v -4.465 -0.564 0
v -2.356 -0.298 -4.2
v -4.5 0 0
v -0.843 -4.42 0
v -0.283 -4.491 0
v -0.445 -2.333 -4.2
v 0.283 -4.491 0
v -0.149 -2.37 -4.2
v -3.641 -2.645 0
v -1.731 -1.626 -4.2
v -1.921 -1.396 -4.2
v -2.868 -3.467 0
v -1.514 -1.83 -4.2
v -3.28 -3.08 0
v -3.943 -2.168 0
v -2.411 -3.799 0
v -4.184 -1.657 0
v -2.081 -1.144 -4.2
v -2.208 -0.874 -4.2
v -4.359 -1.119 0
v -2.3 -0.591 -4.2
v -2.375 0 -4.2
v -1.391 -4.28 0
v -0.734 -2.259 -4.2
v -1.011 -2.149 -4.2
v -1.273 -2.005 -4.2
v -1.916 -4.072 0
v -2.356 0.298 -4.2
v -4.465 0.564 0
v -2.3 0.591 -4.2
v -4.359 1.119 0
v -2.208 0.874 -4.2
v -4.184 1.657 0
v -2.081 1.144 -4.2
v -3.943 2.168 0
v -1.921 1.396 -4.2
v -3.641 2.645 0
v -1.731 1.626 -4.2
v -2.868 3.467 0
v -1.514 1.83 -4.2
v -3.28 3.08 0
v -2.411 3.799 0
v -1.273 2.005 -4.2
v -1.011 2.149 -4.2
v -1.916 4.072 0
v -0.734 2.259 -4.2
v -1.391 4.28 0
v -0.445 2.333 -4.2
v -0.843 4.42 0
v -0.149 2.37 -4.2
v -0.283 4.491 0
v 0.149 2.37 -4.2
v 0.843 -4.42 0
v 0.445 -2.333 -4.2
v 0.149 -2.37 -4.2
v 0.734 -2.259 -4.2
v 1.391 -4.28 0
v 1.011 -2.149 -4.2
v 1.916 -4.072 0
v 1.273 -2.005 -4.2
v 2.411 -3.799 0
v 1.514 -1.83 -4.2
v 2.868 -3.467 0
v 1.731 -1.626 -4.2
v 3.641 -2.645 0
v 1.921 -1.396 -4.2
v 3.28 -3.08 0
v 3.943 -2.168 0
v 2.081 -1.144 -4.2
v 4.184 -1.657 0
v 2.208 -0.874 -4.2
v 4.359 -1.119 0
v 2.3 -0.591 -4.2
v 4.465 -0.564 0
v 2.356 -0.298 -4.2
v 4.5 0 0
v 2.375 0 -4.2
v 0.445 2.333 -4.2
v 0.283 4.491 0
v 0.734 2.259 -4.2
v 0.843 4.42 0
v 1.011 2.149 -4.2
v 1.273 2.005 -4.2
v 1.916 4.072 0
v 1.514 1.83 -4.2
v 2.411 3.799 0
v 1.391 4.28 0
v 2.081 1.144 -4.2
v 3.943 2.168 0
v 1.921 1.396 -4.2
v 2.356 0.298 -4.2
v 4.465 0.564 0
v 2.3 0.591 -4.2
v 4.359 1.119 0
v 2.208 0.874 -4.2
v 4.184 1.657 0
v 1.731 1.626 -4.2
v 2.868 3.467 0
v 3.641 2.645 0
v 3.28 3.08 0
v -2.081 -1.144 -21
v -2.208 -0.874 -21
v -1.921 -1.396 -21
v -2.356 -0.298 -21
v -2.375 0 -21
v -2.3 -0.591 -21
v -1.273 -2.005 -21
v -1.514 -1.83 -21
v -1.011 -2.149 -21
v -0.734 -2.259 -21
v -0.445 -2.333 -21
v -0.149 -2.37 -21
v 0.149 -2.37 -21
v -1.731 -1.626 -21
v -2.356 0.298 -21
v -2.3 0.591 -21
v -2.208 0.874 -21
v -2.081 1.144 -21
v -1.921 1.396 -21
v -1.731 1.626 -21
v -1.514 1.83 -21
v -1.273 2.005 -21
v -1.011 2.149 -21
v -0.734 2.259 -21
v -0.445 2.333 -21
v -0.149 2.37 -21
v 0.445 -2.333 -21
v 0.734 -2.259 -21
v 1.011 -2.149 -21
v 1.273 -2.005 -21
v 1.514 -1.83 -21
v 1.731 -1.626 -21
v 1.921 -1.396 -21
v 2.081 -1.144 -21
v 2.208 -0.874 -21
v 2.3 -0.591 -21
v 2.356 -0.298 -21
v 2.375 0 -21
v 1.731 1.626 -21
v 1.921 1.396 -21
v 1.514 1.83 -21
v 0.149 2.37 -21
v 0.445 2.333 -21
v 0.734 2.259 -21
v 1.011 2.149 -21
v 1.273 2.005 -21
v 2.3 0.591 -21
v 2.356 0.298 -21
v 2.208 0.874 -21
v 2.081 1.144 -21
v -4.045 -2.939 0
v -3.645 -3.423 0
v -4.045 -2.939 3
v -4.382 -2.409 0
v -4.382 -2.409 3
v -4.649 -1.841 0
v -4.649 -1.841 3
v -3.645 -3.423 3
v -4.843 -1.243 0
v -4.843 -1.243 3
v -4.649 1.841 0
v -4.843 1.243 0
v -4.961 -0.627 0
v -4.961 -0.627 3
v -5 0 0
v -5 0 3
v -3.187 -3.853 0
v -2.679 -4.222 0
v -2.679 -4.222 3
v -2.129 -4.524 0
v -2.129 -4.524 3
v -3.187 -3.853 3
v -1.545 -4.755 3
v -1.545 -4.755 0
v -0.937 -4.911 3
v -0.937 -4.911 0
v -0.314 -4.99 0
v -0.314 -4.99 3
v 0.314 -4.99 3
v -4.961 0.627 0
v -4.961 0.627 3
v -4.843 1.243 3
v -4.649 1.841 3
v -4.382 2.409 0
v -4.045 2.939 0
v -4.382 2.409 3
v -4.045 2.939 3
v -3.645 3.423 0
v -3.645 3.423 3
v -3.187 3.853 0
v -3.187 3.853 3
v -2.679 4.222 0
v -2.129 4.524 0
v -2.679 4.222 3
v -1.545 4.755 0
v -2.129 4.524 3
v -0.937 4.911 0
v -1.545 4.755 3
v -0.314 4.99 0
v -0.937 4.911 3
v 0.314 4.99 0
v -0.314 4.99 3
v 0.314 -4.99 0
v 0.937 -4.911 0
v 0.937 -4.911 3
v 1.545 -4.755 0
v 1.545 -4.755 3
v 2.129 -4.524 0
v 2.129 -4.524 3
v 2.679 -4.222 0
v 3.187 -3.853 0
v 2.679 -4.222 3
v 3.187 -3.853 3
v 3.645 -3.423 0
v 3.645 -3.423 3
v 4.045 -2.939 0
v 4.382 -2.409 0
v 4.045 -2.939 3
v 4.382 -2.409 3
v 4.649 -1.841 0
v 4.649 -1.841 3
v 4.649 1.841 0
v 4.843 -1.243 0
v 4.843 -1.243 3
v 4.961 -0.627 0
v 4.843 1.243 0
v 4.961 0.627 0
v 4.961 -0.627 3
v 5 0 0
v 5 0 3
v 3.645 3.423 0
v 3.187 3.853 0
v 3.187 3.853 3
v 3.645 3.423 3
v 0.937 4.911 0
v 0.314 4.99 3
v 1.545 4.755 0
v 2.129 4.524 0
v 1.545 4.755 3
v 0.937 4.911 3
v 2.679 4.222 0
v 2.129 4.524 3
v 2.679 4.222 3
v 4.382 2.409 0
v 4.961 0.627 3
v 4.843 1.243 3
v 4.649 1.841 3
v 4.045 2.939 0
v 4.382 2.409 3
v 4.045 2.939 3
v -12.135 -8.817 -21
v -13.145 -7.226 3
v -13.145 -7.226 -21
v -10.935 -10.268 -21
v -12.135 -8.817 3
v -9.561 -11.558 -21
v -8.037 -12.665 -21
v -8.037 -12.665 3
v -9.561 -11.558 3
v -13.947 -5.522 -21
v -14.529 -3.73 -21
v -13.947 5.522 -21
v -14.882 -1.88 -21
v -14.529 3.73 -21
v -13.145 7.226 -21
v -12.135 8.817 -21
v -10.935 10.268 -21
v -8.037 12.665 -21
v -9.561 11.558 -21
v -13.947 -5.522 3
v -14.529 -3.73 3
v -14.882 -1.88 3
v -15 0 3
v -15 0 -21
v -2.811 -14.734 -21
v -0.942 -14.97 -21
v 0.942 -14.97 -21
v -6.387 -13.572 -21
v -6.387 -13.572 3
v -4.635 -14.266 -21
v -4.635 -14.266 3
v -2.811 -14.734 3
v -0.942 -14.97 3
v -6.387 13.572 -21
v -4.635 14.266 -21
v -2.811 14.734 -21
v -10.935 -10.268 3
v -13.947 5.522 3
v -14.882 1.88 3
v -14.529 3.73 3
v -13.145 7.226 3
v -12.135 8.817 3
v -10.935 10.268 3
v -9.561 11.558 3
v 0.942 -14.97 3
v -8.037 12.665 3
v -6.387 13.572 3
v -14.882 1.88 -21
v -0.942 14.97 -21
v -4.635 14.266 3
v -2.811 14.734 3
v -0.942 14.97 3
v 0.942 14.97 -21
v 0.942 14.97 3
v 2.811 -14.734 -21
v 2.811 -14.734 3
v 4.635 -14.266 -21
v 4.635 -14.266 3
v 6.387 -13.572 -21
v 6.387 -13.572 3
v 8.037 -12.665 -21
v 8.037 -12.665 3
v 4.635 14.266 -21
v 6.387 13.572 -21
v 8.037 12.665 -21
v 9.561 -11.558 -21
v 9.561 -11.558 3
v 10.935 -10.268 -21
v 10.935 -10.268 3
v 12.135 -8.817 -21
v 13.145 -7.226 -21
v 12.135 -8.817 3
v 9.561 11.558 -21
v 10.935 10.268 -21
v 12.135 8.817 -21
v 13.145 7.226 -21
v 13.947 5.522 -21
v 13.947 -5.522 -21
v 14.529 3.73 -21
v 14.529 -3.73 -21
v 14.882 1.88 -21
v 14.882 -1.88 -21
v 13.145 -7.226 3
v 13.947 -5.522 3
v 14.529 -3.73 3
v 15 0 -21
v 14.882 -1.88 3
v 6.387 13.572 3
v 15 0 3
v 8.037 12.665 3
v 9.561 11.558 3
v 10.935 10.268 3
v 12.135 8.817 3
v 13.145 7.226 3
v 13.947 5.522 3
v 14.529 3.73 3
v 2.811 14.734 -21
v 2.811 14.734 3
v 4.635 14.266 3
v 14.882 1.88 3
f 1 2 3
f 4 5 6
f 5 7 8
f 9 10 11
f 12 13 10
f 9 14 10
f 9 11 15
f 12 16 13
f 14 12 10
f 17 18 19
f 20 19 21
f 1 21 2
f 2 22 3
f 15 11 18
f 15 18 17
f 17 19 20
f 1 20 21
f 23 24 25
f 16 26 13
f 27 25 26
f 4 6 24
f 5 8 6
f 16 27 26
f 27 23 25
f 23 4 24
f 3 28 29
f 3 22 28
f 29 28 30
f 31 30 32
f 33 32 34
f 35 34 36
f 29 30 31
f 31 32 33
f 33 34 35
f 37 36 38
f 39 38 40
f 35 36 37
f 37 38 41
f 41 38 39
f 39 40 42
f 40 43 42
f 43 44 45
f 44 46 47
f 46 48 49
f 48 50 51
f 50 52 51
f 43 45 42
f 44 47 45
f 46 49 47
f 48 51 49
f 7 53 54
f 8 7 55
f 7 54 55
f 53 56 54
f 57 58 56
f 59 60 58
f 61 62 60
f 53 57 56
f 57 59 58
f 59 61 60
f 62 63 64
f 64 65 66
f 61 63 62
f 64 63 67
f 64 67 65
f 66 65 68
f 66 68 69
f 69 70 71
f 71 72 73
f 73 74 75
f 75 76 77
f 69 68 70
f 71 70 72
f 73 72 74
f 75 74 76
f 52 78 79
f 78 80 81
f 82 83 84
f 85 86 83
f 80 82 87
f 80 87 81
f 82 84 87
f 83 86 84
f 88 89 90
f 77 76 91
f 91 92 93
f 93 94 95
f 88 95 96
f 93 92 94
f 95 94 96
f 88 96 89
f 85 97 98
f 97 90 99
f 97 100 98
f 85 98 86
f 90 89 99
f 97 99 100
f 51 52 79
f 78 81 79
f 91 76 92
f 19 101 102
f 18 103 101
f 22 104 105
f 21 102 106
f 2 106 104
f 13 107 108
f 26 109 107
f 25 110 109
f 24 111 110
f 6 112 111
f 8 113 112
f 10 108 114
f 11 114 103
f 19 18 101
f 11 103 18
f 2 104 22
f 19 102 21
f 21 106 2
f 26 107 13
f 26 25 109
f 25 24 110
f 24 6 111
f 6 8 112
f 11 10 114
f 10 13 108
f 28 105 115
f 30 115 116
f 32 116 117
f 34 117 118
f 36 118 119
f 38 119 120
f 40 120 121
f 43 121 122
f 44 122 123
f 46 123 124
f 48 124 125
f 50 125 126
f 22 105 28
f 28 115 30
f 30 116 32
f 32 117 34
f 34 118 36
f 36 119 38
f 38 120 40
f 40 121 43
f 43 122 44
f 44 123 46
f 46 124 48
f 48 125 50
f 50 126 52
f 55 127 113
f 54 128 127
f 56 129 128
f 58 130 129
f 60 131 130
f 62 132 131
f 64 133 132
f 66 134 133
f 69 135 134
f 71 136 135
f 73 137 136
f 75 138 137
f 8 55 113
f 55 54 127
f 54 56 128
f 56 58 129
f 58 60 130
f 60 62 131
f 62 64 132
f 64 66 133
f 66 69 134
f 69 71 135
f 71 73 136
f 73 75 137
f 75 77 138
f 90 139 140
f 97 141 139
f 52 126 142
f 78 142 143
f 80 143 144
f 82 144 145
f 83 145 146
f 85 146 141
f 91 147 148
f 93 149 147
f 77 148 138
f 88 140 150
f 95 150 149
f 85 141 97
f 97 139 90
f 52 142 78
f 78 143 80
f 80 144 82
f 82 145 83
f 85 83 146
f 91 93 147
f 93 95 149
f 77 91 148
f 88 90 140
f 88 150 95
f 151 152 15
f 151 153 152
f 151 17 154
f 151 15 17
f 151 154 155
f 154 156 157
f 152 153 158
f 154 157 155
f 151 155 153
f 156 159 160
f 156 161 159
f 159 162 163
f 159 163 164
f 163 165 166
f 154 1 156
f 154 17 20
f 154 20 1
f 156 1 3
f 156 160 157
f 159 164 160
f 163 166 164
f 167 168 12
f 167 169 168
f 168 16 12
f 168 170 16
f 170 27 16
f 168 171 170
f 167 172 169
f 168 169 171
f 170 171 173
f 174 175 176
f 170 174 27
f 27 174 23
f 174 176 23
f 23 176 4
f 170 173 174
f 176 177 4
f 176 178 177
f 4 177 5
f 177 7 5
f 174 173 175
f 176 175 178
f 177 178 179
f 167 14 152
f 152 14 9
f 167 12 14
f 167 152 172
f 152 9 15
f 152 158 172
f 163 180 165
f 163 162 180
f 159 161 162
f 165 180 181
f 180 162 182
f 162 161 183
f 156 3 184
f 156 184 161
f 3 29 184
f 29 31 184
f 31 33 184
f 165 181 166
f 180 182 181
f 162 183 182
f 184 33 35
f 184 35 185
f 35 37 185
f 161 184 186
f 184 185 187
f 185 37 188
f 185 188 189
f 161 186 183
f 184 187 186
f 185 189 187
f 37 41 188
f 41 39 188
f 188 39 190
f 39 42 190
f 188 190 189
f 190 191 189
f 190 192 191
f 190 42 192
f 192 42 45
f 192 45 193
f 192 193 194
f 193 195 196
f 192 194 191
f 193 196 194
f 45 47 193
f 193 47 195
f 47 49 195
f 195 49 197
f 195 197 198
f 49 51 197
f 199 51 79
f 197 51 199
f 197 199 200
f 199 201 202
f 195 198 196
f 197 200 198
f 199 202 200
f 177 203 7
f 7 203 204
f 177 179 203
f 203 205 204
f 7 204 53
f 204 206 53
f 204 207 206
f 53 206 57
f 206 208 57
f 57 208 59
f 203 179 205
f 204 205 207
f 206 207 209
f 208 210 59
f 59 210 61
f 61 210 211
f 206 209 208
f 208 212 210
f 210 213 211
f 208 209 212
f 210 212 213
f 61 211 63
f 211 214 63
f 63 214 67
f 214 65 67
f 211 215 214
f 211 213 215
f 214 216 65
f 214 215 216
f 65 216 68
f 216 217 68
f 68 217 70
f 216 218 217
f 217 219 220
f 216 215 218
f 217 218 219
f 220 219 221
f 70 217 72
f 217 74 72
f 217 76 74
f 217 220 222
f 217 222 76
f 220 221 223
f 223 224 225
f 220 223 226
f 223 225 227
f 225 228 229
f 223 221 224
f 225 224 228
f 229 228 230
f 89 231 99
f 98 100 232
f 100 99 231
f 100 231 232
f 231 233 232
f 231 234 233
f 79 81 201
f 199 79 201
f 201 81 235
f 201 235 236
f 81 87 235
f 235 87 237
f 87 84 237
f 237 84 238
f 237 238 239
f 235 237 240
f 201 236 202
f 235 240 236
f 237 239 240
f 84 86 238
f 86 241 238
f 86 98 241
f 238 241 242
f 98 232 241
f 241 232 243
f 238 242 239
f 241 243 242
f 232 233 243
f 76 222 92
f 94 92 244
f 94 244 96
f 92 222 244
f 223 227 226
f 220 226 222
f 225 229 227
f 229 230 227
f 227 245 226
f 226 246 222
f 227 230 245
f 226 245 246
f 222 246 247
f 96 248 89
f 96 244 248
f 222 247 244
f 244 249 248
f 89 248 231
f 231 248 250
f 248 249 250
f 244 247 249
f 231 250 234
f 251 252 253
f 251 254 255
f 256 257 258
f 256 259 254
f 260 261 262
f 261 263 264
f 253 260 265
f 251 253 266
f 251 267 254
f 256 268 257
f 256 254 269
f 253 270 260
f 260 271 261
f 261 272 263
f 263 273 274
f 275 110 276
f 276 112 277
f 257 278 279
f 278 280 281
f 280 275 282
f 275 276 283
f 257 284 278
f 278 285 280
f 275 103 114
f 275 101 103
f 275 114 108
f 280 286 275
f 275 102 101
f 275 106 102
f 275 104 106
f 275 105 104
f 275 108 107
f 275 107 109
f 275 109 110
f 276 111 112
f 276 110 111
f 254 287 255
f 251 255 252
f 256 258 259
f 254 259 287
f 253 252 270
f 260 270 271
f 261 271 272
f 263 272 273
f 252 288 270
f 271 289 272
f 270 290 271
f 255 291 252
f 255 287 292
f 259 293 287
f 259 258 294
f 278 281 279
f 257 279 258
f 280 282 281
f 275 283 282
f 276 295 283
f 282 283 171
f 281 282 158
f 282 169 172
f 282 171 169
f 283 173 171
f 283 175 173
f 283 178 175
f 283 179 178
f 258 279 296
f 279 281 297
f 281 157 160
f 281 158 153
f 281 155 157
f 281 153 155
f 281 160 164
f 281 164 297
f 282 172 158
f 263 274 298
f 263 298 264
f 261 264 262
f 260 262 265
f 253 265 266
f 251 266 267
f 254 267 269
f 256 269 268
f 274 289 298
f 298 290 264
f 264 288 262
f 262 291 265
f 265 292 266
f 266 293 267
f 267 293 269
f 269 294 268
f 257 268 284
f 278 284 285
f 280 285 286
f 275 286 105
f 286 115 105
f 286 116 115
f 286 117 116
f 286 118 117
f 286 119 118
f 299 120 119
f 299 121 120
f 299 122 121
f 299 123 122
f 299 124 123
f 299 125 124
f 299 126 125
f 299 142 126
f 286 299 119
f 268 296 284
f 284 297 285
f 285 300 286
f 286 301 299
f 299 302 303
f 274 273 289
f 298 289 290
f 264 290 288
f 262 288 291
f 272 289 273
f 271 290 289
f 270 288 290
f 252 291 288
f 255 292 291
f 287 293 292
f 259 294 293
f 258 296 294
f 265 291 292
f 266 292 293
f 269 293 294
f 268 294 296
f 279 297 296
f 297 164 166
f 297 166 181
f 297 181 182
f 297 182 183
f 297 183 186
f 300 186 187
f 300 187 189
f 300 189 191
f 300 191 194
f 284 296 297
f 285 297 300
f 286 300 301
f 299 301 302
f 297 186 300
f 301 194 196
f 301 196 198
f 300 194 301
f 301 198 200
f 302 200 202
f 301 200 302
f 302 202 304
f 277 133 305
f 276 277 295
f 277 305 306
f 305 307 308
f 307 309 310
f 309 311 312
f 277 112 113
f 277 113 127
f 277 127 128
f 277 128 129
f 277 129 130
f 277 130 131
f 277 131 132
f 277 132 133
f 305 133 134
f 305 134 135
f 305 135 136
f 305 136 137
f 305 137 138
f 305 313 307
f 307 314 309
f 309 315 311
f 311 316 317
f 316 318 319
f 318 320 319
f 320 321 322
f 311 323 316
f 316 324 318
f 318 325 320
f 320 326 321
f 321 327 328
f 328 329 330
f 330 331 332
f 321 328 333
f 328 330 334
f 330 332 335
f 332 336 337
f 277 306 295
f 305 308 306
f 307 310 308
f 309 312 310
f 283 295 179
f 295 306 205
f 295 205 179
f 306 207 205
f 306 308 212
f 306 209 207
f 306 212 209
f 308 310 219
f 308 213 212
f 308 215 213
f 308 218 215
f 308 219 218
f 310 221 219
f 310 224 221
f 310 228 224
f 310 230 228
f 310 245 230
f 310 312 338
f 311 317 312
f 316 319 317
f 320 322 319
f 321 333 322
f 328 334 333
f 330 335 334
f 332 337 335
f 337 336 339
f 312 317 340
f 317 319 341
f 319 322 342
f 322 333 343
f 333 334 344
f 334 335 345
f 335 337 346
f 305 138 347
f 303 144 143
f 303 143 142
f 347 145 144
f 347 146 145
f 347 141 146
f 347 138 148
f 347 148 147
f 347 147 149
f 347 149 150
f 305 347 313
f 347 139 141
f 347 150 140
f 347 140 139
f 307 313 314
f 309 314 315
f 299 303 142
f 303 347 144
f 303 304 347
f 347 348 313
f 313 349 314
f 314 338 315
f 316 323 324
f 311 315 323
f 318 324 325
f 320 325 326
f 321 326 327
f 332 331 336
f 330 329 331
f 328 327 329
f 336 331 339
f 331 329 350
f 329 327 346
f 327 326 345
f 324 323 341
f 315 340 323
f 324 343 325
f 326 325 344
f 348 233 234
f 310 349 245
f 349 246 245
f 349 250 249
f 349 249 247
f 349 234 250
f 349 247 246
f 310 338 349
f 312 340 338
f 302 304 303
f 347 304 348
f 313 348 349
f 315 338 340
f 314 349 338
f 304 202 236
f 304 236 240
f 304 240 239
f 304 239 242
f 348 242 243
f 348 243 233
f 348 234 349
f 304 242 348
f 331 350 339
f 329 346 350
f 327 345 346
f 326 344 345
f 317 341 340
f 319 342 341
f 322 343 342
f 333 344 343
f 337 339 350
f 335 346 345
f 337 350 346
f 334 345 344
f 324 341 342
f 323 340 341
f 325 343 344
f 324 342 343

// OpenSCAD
$fn = 50;

difference() {
	union() {
		translate(v = [0, 0, -21.0]) {
			cylinder(h = 24, r = 15.0);
		}
	}
	union() {
		translate(v = [0, 0, 0]) {
			rotate(a = [0, 0, 0]) {
				difference() {
					union() {
						translate(v = [0, 0, -24.0]) {
							cylinder(h = 24, r = 2.25);
						}
						translate(v = [0, 0, -4.2]) {
							cylinder(h = 4.2, r1 = 2.375, r2 = 4.5);
						}
						translate(v = [0, 0, -24.0]) {
							cylinder(h = 24, r = 2.375);
						}
						translate(v = [0, 0, -24.0]) {
							cylinder(h = 24, r = 2.25);
						}
					}
					union();
				}
			}
		}
		#cylinder(h = 3, r = 5.0);
	}
}
